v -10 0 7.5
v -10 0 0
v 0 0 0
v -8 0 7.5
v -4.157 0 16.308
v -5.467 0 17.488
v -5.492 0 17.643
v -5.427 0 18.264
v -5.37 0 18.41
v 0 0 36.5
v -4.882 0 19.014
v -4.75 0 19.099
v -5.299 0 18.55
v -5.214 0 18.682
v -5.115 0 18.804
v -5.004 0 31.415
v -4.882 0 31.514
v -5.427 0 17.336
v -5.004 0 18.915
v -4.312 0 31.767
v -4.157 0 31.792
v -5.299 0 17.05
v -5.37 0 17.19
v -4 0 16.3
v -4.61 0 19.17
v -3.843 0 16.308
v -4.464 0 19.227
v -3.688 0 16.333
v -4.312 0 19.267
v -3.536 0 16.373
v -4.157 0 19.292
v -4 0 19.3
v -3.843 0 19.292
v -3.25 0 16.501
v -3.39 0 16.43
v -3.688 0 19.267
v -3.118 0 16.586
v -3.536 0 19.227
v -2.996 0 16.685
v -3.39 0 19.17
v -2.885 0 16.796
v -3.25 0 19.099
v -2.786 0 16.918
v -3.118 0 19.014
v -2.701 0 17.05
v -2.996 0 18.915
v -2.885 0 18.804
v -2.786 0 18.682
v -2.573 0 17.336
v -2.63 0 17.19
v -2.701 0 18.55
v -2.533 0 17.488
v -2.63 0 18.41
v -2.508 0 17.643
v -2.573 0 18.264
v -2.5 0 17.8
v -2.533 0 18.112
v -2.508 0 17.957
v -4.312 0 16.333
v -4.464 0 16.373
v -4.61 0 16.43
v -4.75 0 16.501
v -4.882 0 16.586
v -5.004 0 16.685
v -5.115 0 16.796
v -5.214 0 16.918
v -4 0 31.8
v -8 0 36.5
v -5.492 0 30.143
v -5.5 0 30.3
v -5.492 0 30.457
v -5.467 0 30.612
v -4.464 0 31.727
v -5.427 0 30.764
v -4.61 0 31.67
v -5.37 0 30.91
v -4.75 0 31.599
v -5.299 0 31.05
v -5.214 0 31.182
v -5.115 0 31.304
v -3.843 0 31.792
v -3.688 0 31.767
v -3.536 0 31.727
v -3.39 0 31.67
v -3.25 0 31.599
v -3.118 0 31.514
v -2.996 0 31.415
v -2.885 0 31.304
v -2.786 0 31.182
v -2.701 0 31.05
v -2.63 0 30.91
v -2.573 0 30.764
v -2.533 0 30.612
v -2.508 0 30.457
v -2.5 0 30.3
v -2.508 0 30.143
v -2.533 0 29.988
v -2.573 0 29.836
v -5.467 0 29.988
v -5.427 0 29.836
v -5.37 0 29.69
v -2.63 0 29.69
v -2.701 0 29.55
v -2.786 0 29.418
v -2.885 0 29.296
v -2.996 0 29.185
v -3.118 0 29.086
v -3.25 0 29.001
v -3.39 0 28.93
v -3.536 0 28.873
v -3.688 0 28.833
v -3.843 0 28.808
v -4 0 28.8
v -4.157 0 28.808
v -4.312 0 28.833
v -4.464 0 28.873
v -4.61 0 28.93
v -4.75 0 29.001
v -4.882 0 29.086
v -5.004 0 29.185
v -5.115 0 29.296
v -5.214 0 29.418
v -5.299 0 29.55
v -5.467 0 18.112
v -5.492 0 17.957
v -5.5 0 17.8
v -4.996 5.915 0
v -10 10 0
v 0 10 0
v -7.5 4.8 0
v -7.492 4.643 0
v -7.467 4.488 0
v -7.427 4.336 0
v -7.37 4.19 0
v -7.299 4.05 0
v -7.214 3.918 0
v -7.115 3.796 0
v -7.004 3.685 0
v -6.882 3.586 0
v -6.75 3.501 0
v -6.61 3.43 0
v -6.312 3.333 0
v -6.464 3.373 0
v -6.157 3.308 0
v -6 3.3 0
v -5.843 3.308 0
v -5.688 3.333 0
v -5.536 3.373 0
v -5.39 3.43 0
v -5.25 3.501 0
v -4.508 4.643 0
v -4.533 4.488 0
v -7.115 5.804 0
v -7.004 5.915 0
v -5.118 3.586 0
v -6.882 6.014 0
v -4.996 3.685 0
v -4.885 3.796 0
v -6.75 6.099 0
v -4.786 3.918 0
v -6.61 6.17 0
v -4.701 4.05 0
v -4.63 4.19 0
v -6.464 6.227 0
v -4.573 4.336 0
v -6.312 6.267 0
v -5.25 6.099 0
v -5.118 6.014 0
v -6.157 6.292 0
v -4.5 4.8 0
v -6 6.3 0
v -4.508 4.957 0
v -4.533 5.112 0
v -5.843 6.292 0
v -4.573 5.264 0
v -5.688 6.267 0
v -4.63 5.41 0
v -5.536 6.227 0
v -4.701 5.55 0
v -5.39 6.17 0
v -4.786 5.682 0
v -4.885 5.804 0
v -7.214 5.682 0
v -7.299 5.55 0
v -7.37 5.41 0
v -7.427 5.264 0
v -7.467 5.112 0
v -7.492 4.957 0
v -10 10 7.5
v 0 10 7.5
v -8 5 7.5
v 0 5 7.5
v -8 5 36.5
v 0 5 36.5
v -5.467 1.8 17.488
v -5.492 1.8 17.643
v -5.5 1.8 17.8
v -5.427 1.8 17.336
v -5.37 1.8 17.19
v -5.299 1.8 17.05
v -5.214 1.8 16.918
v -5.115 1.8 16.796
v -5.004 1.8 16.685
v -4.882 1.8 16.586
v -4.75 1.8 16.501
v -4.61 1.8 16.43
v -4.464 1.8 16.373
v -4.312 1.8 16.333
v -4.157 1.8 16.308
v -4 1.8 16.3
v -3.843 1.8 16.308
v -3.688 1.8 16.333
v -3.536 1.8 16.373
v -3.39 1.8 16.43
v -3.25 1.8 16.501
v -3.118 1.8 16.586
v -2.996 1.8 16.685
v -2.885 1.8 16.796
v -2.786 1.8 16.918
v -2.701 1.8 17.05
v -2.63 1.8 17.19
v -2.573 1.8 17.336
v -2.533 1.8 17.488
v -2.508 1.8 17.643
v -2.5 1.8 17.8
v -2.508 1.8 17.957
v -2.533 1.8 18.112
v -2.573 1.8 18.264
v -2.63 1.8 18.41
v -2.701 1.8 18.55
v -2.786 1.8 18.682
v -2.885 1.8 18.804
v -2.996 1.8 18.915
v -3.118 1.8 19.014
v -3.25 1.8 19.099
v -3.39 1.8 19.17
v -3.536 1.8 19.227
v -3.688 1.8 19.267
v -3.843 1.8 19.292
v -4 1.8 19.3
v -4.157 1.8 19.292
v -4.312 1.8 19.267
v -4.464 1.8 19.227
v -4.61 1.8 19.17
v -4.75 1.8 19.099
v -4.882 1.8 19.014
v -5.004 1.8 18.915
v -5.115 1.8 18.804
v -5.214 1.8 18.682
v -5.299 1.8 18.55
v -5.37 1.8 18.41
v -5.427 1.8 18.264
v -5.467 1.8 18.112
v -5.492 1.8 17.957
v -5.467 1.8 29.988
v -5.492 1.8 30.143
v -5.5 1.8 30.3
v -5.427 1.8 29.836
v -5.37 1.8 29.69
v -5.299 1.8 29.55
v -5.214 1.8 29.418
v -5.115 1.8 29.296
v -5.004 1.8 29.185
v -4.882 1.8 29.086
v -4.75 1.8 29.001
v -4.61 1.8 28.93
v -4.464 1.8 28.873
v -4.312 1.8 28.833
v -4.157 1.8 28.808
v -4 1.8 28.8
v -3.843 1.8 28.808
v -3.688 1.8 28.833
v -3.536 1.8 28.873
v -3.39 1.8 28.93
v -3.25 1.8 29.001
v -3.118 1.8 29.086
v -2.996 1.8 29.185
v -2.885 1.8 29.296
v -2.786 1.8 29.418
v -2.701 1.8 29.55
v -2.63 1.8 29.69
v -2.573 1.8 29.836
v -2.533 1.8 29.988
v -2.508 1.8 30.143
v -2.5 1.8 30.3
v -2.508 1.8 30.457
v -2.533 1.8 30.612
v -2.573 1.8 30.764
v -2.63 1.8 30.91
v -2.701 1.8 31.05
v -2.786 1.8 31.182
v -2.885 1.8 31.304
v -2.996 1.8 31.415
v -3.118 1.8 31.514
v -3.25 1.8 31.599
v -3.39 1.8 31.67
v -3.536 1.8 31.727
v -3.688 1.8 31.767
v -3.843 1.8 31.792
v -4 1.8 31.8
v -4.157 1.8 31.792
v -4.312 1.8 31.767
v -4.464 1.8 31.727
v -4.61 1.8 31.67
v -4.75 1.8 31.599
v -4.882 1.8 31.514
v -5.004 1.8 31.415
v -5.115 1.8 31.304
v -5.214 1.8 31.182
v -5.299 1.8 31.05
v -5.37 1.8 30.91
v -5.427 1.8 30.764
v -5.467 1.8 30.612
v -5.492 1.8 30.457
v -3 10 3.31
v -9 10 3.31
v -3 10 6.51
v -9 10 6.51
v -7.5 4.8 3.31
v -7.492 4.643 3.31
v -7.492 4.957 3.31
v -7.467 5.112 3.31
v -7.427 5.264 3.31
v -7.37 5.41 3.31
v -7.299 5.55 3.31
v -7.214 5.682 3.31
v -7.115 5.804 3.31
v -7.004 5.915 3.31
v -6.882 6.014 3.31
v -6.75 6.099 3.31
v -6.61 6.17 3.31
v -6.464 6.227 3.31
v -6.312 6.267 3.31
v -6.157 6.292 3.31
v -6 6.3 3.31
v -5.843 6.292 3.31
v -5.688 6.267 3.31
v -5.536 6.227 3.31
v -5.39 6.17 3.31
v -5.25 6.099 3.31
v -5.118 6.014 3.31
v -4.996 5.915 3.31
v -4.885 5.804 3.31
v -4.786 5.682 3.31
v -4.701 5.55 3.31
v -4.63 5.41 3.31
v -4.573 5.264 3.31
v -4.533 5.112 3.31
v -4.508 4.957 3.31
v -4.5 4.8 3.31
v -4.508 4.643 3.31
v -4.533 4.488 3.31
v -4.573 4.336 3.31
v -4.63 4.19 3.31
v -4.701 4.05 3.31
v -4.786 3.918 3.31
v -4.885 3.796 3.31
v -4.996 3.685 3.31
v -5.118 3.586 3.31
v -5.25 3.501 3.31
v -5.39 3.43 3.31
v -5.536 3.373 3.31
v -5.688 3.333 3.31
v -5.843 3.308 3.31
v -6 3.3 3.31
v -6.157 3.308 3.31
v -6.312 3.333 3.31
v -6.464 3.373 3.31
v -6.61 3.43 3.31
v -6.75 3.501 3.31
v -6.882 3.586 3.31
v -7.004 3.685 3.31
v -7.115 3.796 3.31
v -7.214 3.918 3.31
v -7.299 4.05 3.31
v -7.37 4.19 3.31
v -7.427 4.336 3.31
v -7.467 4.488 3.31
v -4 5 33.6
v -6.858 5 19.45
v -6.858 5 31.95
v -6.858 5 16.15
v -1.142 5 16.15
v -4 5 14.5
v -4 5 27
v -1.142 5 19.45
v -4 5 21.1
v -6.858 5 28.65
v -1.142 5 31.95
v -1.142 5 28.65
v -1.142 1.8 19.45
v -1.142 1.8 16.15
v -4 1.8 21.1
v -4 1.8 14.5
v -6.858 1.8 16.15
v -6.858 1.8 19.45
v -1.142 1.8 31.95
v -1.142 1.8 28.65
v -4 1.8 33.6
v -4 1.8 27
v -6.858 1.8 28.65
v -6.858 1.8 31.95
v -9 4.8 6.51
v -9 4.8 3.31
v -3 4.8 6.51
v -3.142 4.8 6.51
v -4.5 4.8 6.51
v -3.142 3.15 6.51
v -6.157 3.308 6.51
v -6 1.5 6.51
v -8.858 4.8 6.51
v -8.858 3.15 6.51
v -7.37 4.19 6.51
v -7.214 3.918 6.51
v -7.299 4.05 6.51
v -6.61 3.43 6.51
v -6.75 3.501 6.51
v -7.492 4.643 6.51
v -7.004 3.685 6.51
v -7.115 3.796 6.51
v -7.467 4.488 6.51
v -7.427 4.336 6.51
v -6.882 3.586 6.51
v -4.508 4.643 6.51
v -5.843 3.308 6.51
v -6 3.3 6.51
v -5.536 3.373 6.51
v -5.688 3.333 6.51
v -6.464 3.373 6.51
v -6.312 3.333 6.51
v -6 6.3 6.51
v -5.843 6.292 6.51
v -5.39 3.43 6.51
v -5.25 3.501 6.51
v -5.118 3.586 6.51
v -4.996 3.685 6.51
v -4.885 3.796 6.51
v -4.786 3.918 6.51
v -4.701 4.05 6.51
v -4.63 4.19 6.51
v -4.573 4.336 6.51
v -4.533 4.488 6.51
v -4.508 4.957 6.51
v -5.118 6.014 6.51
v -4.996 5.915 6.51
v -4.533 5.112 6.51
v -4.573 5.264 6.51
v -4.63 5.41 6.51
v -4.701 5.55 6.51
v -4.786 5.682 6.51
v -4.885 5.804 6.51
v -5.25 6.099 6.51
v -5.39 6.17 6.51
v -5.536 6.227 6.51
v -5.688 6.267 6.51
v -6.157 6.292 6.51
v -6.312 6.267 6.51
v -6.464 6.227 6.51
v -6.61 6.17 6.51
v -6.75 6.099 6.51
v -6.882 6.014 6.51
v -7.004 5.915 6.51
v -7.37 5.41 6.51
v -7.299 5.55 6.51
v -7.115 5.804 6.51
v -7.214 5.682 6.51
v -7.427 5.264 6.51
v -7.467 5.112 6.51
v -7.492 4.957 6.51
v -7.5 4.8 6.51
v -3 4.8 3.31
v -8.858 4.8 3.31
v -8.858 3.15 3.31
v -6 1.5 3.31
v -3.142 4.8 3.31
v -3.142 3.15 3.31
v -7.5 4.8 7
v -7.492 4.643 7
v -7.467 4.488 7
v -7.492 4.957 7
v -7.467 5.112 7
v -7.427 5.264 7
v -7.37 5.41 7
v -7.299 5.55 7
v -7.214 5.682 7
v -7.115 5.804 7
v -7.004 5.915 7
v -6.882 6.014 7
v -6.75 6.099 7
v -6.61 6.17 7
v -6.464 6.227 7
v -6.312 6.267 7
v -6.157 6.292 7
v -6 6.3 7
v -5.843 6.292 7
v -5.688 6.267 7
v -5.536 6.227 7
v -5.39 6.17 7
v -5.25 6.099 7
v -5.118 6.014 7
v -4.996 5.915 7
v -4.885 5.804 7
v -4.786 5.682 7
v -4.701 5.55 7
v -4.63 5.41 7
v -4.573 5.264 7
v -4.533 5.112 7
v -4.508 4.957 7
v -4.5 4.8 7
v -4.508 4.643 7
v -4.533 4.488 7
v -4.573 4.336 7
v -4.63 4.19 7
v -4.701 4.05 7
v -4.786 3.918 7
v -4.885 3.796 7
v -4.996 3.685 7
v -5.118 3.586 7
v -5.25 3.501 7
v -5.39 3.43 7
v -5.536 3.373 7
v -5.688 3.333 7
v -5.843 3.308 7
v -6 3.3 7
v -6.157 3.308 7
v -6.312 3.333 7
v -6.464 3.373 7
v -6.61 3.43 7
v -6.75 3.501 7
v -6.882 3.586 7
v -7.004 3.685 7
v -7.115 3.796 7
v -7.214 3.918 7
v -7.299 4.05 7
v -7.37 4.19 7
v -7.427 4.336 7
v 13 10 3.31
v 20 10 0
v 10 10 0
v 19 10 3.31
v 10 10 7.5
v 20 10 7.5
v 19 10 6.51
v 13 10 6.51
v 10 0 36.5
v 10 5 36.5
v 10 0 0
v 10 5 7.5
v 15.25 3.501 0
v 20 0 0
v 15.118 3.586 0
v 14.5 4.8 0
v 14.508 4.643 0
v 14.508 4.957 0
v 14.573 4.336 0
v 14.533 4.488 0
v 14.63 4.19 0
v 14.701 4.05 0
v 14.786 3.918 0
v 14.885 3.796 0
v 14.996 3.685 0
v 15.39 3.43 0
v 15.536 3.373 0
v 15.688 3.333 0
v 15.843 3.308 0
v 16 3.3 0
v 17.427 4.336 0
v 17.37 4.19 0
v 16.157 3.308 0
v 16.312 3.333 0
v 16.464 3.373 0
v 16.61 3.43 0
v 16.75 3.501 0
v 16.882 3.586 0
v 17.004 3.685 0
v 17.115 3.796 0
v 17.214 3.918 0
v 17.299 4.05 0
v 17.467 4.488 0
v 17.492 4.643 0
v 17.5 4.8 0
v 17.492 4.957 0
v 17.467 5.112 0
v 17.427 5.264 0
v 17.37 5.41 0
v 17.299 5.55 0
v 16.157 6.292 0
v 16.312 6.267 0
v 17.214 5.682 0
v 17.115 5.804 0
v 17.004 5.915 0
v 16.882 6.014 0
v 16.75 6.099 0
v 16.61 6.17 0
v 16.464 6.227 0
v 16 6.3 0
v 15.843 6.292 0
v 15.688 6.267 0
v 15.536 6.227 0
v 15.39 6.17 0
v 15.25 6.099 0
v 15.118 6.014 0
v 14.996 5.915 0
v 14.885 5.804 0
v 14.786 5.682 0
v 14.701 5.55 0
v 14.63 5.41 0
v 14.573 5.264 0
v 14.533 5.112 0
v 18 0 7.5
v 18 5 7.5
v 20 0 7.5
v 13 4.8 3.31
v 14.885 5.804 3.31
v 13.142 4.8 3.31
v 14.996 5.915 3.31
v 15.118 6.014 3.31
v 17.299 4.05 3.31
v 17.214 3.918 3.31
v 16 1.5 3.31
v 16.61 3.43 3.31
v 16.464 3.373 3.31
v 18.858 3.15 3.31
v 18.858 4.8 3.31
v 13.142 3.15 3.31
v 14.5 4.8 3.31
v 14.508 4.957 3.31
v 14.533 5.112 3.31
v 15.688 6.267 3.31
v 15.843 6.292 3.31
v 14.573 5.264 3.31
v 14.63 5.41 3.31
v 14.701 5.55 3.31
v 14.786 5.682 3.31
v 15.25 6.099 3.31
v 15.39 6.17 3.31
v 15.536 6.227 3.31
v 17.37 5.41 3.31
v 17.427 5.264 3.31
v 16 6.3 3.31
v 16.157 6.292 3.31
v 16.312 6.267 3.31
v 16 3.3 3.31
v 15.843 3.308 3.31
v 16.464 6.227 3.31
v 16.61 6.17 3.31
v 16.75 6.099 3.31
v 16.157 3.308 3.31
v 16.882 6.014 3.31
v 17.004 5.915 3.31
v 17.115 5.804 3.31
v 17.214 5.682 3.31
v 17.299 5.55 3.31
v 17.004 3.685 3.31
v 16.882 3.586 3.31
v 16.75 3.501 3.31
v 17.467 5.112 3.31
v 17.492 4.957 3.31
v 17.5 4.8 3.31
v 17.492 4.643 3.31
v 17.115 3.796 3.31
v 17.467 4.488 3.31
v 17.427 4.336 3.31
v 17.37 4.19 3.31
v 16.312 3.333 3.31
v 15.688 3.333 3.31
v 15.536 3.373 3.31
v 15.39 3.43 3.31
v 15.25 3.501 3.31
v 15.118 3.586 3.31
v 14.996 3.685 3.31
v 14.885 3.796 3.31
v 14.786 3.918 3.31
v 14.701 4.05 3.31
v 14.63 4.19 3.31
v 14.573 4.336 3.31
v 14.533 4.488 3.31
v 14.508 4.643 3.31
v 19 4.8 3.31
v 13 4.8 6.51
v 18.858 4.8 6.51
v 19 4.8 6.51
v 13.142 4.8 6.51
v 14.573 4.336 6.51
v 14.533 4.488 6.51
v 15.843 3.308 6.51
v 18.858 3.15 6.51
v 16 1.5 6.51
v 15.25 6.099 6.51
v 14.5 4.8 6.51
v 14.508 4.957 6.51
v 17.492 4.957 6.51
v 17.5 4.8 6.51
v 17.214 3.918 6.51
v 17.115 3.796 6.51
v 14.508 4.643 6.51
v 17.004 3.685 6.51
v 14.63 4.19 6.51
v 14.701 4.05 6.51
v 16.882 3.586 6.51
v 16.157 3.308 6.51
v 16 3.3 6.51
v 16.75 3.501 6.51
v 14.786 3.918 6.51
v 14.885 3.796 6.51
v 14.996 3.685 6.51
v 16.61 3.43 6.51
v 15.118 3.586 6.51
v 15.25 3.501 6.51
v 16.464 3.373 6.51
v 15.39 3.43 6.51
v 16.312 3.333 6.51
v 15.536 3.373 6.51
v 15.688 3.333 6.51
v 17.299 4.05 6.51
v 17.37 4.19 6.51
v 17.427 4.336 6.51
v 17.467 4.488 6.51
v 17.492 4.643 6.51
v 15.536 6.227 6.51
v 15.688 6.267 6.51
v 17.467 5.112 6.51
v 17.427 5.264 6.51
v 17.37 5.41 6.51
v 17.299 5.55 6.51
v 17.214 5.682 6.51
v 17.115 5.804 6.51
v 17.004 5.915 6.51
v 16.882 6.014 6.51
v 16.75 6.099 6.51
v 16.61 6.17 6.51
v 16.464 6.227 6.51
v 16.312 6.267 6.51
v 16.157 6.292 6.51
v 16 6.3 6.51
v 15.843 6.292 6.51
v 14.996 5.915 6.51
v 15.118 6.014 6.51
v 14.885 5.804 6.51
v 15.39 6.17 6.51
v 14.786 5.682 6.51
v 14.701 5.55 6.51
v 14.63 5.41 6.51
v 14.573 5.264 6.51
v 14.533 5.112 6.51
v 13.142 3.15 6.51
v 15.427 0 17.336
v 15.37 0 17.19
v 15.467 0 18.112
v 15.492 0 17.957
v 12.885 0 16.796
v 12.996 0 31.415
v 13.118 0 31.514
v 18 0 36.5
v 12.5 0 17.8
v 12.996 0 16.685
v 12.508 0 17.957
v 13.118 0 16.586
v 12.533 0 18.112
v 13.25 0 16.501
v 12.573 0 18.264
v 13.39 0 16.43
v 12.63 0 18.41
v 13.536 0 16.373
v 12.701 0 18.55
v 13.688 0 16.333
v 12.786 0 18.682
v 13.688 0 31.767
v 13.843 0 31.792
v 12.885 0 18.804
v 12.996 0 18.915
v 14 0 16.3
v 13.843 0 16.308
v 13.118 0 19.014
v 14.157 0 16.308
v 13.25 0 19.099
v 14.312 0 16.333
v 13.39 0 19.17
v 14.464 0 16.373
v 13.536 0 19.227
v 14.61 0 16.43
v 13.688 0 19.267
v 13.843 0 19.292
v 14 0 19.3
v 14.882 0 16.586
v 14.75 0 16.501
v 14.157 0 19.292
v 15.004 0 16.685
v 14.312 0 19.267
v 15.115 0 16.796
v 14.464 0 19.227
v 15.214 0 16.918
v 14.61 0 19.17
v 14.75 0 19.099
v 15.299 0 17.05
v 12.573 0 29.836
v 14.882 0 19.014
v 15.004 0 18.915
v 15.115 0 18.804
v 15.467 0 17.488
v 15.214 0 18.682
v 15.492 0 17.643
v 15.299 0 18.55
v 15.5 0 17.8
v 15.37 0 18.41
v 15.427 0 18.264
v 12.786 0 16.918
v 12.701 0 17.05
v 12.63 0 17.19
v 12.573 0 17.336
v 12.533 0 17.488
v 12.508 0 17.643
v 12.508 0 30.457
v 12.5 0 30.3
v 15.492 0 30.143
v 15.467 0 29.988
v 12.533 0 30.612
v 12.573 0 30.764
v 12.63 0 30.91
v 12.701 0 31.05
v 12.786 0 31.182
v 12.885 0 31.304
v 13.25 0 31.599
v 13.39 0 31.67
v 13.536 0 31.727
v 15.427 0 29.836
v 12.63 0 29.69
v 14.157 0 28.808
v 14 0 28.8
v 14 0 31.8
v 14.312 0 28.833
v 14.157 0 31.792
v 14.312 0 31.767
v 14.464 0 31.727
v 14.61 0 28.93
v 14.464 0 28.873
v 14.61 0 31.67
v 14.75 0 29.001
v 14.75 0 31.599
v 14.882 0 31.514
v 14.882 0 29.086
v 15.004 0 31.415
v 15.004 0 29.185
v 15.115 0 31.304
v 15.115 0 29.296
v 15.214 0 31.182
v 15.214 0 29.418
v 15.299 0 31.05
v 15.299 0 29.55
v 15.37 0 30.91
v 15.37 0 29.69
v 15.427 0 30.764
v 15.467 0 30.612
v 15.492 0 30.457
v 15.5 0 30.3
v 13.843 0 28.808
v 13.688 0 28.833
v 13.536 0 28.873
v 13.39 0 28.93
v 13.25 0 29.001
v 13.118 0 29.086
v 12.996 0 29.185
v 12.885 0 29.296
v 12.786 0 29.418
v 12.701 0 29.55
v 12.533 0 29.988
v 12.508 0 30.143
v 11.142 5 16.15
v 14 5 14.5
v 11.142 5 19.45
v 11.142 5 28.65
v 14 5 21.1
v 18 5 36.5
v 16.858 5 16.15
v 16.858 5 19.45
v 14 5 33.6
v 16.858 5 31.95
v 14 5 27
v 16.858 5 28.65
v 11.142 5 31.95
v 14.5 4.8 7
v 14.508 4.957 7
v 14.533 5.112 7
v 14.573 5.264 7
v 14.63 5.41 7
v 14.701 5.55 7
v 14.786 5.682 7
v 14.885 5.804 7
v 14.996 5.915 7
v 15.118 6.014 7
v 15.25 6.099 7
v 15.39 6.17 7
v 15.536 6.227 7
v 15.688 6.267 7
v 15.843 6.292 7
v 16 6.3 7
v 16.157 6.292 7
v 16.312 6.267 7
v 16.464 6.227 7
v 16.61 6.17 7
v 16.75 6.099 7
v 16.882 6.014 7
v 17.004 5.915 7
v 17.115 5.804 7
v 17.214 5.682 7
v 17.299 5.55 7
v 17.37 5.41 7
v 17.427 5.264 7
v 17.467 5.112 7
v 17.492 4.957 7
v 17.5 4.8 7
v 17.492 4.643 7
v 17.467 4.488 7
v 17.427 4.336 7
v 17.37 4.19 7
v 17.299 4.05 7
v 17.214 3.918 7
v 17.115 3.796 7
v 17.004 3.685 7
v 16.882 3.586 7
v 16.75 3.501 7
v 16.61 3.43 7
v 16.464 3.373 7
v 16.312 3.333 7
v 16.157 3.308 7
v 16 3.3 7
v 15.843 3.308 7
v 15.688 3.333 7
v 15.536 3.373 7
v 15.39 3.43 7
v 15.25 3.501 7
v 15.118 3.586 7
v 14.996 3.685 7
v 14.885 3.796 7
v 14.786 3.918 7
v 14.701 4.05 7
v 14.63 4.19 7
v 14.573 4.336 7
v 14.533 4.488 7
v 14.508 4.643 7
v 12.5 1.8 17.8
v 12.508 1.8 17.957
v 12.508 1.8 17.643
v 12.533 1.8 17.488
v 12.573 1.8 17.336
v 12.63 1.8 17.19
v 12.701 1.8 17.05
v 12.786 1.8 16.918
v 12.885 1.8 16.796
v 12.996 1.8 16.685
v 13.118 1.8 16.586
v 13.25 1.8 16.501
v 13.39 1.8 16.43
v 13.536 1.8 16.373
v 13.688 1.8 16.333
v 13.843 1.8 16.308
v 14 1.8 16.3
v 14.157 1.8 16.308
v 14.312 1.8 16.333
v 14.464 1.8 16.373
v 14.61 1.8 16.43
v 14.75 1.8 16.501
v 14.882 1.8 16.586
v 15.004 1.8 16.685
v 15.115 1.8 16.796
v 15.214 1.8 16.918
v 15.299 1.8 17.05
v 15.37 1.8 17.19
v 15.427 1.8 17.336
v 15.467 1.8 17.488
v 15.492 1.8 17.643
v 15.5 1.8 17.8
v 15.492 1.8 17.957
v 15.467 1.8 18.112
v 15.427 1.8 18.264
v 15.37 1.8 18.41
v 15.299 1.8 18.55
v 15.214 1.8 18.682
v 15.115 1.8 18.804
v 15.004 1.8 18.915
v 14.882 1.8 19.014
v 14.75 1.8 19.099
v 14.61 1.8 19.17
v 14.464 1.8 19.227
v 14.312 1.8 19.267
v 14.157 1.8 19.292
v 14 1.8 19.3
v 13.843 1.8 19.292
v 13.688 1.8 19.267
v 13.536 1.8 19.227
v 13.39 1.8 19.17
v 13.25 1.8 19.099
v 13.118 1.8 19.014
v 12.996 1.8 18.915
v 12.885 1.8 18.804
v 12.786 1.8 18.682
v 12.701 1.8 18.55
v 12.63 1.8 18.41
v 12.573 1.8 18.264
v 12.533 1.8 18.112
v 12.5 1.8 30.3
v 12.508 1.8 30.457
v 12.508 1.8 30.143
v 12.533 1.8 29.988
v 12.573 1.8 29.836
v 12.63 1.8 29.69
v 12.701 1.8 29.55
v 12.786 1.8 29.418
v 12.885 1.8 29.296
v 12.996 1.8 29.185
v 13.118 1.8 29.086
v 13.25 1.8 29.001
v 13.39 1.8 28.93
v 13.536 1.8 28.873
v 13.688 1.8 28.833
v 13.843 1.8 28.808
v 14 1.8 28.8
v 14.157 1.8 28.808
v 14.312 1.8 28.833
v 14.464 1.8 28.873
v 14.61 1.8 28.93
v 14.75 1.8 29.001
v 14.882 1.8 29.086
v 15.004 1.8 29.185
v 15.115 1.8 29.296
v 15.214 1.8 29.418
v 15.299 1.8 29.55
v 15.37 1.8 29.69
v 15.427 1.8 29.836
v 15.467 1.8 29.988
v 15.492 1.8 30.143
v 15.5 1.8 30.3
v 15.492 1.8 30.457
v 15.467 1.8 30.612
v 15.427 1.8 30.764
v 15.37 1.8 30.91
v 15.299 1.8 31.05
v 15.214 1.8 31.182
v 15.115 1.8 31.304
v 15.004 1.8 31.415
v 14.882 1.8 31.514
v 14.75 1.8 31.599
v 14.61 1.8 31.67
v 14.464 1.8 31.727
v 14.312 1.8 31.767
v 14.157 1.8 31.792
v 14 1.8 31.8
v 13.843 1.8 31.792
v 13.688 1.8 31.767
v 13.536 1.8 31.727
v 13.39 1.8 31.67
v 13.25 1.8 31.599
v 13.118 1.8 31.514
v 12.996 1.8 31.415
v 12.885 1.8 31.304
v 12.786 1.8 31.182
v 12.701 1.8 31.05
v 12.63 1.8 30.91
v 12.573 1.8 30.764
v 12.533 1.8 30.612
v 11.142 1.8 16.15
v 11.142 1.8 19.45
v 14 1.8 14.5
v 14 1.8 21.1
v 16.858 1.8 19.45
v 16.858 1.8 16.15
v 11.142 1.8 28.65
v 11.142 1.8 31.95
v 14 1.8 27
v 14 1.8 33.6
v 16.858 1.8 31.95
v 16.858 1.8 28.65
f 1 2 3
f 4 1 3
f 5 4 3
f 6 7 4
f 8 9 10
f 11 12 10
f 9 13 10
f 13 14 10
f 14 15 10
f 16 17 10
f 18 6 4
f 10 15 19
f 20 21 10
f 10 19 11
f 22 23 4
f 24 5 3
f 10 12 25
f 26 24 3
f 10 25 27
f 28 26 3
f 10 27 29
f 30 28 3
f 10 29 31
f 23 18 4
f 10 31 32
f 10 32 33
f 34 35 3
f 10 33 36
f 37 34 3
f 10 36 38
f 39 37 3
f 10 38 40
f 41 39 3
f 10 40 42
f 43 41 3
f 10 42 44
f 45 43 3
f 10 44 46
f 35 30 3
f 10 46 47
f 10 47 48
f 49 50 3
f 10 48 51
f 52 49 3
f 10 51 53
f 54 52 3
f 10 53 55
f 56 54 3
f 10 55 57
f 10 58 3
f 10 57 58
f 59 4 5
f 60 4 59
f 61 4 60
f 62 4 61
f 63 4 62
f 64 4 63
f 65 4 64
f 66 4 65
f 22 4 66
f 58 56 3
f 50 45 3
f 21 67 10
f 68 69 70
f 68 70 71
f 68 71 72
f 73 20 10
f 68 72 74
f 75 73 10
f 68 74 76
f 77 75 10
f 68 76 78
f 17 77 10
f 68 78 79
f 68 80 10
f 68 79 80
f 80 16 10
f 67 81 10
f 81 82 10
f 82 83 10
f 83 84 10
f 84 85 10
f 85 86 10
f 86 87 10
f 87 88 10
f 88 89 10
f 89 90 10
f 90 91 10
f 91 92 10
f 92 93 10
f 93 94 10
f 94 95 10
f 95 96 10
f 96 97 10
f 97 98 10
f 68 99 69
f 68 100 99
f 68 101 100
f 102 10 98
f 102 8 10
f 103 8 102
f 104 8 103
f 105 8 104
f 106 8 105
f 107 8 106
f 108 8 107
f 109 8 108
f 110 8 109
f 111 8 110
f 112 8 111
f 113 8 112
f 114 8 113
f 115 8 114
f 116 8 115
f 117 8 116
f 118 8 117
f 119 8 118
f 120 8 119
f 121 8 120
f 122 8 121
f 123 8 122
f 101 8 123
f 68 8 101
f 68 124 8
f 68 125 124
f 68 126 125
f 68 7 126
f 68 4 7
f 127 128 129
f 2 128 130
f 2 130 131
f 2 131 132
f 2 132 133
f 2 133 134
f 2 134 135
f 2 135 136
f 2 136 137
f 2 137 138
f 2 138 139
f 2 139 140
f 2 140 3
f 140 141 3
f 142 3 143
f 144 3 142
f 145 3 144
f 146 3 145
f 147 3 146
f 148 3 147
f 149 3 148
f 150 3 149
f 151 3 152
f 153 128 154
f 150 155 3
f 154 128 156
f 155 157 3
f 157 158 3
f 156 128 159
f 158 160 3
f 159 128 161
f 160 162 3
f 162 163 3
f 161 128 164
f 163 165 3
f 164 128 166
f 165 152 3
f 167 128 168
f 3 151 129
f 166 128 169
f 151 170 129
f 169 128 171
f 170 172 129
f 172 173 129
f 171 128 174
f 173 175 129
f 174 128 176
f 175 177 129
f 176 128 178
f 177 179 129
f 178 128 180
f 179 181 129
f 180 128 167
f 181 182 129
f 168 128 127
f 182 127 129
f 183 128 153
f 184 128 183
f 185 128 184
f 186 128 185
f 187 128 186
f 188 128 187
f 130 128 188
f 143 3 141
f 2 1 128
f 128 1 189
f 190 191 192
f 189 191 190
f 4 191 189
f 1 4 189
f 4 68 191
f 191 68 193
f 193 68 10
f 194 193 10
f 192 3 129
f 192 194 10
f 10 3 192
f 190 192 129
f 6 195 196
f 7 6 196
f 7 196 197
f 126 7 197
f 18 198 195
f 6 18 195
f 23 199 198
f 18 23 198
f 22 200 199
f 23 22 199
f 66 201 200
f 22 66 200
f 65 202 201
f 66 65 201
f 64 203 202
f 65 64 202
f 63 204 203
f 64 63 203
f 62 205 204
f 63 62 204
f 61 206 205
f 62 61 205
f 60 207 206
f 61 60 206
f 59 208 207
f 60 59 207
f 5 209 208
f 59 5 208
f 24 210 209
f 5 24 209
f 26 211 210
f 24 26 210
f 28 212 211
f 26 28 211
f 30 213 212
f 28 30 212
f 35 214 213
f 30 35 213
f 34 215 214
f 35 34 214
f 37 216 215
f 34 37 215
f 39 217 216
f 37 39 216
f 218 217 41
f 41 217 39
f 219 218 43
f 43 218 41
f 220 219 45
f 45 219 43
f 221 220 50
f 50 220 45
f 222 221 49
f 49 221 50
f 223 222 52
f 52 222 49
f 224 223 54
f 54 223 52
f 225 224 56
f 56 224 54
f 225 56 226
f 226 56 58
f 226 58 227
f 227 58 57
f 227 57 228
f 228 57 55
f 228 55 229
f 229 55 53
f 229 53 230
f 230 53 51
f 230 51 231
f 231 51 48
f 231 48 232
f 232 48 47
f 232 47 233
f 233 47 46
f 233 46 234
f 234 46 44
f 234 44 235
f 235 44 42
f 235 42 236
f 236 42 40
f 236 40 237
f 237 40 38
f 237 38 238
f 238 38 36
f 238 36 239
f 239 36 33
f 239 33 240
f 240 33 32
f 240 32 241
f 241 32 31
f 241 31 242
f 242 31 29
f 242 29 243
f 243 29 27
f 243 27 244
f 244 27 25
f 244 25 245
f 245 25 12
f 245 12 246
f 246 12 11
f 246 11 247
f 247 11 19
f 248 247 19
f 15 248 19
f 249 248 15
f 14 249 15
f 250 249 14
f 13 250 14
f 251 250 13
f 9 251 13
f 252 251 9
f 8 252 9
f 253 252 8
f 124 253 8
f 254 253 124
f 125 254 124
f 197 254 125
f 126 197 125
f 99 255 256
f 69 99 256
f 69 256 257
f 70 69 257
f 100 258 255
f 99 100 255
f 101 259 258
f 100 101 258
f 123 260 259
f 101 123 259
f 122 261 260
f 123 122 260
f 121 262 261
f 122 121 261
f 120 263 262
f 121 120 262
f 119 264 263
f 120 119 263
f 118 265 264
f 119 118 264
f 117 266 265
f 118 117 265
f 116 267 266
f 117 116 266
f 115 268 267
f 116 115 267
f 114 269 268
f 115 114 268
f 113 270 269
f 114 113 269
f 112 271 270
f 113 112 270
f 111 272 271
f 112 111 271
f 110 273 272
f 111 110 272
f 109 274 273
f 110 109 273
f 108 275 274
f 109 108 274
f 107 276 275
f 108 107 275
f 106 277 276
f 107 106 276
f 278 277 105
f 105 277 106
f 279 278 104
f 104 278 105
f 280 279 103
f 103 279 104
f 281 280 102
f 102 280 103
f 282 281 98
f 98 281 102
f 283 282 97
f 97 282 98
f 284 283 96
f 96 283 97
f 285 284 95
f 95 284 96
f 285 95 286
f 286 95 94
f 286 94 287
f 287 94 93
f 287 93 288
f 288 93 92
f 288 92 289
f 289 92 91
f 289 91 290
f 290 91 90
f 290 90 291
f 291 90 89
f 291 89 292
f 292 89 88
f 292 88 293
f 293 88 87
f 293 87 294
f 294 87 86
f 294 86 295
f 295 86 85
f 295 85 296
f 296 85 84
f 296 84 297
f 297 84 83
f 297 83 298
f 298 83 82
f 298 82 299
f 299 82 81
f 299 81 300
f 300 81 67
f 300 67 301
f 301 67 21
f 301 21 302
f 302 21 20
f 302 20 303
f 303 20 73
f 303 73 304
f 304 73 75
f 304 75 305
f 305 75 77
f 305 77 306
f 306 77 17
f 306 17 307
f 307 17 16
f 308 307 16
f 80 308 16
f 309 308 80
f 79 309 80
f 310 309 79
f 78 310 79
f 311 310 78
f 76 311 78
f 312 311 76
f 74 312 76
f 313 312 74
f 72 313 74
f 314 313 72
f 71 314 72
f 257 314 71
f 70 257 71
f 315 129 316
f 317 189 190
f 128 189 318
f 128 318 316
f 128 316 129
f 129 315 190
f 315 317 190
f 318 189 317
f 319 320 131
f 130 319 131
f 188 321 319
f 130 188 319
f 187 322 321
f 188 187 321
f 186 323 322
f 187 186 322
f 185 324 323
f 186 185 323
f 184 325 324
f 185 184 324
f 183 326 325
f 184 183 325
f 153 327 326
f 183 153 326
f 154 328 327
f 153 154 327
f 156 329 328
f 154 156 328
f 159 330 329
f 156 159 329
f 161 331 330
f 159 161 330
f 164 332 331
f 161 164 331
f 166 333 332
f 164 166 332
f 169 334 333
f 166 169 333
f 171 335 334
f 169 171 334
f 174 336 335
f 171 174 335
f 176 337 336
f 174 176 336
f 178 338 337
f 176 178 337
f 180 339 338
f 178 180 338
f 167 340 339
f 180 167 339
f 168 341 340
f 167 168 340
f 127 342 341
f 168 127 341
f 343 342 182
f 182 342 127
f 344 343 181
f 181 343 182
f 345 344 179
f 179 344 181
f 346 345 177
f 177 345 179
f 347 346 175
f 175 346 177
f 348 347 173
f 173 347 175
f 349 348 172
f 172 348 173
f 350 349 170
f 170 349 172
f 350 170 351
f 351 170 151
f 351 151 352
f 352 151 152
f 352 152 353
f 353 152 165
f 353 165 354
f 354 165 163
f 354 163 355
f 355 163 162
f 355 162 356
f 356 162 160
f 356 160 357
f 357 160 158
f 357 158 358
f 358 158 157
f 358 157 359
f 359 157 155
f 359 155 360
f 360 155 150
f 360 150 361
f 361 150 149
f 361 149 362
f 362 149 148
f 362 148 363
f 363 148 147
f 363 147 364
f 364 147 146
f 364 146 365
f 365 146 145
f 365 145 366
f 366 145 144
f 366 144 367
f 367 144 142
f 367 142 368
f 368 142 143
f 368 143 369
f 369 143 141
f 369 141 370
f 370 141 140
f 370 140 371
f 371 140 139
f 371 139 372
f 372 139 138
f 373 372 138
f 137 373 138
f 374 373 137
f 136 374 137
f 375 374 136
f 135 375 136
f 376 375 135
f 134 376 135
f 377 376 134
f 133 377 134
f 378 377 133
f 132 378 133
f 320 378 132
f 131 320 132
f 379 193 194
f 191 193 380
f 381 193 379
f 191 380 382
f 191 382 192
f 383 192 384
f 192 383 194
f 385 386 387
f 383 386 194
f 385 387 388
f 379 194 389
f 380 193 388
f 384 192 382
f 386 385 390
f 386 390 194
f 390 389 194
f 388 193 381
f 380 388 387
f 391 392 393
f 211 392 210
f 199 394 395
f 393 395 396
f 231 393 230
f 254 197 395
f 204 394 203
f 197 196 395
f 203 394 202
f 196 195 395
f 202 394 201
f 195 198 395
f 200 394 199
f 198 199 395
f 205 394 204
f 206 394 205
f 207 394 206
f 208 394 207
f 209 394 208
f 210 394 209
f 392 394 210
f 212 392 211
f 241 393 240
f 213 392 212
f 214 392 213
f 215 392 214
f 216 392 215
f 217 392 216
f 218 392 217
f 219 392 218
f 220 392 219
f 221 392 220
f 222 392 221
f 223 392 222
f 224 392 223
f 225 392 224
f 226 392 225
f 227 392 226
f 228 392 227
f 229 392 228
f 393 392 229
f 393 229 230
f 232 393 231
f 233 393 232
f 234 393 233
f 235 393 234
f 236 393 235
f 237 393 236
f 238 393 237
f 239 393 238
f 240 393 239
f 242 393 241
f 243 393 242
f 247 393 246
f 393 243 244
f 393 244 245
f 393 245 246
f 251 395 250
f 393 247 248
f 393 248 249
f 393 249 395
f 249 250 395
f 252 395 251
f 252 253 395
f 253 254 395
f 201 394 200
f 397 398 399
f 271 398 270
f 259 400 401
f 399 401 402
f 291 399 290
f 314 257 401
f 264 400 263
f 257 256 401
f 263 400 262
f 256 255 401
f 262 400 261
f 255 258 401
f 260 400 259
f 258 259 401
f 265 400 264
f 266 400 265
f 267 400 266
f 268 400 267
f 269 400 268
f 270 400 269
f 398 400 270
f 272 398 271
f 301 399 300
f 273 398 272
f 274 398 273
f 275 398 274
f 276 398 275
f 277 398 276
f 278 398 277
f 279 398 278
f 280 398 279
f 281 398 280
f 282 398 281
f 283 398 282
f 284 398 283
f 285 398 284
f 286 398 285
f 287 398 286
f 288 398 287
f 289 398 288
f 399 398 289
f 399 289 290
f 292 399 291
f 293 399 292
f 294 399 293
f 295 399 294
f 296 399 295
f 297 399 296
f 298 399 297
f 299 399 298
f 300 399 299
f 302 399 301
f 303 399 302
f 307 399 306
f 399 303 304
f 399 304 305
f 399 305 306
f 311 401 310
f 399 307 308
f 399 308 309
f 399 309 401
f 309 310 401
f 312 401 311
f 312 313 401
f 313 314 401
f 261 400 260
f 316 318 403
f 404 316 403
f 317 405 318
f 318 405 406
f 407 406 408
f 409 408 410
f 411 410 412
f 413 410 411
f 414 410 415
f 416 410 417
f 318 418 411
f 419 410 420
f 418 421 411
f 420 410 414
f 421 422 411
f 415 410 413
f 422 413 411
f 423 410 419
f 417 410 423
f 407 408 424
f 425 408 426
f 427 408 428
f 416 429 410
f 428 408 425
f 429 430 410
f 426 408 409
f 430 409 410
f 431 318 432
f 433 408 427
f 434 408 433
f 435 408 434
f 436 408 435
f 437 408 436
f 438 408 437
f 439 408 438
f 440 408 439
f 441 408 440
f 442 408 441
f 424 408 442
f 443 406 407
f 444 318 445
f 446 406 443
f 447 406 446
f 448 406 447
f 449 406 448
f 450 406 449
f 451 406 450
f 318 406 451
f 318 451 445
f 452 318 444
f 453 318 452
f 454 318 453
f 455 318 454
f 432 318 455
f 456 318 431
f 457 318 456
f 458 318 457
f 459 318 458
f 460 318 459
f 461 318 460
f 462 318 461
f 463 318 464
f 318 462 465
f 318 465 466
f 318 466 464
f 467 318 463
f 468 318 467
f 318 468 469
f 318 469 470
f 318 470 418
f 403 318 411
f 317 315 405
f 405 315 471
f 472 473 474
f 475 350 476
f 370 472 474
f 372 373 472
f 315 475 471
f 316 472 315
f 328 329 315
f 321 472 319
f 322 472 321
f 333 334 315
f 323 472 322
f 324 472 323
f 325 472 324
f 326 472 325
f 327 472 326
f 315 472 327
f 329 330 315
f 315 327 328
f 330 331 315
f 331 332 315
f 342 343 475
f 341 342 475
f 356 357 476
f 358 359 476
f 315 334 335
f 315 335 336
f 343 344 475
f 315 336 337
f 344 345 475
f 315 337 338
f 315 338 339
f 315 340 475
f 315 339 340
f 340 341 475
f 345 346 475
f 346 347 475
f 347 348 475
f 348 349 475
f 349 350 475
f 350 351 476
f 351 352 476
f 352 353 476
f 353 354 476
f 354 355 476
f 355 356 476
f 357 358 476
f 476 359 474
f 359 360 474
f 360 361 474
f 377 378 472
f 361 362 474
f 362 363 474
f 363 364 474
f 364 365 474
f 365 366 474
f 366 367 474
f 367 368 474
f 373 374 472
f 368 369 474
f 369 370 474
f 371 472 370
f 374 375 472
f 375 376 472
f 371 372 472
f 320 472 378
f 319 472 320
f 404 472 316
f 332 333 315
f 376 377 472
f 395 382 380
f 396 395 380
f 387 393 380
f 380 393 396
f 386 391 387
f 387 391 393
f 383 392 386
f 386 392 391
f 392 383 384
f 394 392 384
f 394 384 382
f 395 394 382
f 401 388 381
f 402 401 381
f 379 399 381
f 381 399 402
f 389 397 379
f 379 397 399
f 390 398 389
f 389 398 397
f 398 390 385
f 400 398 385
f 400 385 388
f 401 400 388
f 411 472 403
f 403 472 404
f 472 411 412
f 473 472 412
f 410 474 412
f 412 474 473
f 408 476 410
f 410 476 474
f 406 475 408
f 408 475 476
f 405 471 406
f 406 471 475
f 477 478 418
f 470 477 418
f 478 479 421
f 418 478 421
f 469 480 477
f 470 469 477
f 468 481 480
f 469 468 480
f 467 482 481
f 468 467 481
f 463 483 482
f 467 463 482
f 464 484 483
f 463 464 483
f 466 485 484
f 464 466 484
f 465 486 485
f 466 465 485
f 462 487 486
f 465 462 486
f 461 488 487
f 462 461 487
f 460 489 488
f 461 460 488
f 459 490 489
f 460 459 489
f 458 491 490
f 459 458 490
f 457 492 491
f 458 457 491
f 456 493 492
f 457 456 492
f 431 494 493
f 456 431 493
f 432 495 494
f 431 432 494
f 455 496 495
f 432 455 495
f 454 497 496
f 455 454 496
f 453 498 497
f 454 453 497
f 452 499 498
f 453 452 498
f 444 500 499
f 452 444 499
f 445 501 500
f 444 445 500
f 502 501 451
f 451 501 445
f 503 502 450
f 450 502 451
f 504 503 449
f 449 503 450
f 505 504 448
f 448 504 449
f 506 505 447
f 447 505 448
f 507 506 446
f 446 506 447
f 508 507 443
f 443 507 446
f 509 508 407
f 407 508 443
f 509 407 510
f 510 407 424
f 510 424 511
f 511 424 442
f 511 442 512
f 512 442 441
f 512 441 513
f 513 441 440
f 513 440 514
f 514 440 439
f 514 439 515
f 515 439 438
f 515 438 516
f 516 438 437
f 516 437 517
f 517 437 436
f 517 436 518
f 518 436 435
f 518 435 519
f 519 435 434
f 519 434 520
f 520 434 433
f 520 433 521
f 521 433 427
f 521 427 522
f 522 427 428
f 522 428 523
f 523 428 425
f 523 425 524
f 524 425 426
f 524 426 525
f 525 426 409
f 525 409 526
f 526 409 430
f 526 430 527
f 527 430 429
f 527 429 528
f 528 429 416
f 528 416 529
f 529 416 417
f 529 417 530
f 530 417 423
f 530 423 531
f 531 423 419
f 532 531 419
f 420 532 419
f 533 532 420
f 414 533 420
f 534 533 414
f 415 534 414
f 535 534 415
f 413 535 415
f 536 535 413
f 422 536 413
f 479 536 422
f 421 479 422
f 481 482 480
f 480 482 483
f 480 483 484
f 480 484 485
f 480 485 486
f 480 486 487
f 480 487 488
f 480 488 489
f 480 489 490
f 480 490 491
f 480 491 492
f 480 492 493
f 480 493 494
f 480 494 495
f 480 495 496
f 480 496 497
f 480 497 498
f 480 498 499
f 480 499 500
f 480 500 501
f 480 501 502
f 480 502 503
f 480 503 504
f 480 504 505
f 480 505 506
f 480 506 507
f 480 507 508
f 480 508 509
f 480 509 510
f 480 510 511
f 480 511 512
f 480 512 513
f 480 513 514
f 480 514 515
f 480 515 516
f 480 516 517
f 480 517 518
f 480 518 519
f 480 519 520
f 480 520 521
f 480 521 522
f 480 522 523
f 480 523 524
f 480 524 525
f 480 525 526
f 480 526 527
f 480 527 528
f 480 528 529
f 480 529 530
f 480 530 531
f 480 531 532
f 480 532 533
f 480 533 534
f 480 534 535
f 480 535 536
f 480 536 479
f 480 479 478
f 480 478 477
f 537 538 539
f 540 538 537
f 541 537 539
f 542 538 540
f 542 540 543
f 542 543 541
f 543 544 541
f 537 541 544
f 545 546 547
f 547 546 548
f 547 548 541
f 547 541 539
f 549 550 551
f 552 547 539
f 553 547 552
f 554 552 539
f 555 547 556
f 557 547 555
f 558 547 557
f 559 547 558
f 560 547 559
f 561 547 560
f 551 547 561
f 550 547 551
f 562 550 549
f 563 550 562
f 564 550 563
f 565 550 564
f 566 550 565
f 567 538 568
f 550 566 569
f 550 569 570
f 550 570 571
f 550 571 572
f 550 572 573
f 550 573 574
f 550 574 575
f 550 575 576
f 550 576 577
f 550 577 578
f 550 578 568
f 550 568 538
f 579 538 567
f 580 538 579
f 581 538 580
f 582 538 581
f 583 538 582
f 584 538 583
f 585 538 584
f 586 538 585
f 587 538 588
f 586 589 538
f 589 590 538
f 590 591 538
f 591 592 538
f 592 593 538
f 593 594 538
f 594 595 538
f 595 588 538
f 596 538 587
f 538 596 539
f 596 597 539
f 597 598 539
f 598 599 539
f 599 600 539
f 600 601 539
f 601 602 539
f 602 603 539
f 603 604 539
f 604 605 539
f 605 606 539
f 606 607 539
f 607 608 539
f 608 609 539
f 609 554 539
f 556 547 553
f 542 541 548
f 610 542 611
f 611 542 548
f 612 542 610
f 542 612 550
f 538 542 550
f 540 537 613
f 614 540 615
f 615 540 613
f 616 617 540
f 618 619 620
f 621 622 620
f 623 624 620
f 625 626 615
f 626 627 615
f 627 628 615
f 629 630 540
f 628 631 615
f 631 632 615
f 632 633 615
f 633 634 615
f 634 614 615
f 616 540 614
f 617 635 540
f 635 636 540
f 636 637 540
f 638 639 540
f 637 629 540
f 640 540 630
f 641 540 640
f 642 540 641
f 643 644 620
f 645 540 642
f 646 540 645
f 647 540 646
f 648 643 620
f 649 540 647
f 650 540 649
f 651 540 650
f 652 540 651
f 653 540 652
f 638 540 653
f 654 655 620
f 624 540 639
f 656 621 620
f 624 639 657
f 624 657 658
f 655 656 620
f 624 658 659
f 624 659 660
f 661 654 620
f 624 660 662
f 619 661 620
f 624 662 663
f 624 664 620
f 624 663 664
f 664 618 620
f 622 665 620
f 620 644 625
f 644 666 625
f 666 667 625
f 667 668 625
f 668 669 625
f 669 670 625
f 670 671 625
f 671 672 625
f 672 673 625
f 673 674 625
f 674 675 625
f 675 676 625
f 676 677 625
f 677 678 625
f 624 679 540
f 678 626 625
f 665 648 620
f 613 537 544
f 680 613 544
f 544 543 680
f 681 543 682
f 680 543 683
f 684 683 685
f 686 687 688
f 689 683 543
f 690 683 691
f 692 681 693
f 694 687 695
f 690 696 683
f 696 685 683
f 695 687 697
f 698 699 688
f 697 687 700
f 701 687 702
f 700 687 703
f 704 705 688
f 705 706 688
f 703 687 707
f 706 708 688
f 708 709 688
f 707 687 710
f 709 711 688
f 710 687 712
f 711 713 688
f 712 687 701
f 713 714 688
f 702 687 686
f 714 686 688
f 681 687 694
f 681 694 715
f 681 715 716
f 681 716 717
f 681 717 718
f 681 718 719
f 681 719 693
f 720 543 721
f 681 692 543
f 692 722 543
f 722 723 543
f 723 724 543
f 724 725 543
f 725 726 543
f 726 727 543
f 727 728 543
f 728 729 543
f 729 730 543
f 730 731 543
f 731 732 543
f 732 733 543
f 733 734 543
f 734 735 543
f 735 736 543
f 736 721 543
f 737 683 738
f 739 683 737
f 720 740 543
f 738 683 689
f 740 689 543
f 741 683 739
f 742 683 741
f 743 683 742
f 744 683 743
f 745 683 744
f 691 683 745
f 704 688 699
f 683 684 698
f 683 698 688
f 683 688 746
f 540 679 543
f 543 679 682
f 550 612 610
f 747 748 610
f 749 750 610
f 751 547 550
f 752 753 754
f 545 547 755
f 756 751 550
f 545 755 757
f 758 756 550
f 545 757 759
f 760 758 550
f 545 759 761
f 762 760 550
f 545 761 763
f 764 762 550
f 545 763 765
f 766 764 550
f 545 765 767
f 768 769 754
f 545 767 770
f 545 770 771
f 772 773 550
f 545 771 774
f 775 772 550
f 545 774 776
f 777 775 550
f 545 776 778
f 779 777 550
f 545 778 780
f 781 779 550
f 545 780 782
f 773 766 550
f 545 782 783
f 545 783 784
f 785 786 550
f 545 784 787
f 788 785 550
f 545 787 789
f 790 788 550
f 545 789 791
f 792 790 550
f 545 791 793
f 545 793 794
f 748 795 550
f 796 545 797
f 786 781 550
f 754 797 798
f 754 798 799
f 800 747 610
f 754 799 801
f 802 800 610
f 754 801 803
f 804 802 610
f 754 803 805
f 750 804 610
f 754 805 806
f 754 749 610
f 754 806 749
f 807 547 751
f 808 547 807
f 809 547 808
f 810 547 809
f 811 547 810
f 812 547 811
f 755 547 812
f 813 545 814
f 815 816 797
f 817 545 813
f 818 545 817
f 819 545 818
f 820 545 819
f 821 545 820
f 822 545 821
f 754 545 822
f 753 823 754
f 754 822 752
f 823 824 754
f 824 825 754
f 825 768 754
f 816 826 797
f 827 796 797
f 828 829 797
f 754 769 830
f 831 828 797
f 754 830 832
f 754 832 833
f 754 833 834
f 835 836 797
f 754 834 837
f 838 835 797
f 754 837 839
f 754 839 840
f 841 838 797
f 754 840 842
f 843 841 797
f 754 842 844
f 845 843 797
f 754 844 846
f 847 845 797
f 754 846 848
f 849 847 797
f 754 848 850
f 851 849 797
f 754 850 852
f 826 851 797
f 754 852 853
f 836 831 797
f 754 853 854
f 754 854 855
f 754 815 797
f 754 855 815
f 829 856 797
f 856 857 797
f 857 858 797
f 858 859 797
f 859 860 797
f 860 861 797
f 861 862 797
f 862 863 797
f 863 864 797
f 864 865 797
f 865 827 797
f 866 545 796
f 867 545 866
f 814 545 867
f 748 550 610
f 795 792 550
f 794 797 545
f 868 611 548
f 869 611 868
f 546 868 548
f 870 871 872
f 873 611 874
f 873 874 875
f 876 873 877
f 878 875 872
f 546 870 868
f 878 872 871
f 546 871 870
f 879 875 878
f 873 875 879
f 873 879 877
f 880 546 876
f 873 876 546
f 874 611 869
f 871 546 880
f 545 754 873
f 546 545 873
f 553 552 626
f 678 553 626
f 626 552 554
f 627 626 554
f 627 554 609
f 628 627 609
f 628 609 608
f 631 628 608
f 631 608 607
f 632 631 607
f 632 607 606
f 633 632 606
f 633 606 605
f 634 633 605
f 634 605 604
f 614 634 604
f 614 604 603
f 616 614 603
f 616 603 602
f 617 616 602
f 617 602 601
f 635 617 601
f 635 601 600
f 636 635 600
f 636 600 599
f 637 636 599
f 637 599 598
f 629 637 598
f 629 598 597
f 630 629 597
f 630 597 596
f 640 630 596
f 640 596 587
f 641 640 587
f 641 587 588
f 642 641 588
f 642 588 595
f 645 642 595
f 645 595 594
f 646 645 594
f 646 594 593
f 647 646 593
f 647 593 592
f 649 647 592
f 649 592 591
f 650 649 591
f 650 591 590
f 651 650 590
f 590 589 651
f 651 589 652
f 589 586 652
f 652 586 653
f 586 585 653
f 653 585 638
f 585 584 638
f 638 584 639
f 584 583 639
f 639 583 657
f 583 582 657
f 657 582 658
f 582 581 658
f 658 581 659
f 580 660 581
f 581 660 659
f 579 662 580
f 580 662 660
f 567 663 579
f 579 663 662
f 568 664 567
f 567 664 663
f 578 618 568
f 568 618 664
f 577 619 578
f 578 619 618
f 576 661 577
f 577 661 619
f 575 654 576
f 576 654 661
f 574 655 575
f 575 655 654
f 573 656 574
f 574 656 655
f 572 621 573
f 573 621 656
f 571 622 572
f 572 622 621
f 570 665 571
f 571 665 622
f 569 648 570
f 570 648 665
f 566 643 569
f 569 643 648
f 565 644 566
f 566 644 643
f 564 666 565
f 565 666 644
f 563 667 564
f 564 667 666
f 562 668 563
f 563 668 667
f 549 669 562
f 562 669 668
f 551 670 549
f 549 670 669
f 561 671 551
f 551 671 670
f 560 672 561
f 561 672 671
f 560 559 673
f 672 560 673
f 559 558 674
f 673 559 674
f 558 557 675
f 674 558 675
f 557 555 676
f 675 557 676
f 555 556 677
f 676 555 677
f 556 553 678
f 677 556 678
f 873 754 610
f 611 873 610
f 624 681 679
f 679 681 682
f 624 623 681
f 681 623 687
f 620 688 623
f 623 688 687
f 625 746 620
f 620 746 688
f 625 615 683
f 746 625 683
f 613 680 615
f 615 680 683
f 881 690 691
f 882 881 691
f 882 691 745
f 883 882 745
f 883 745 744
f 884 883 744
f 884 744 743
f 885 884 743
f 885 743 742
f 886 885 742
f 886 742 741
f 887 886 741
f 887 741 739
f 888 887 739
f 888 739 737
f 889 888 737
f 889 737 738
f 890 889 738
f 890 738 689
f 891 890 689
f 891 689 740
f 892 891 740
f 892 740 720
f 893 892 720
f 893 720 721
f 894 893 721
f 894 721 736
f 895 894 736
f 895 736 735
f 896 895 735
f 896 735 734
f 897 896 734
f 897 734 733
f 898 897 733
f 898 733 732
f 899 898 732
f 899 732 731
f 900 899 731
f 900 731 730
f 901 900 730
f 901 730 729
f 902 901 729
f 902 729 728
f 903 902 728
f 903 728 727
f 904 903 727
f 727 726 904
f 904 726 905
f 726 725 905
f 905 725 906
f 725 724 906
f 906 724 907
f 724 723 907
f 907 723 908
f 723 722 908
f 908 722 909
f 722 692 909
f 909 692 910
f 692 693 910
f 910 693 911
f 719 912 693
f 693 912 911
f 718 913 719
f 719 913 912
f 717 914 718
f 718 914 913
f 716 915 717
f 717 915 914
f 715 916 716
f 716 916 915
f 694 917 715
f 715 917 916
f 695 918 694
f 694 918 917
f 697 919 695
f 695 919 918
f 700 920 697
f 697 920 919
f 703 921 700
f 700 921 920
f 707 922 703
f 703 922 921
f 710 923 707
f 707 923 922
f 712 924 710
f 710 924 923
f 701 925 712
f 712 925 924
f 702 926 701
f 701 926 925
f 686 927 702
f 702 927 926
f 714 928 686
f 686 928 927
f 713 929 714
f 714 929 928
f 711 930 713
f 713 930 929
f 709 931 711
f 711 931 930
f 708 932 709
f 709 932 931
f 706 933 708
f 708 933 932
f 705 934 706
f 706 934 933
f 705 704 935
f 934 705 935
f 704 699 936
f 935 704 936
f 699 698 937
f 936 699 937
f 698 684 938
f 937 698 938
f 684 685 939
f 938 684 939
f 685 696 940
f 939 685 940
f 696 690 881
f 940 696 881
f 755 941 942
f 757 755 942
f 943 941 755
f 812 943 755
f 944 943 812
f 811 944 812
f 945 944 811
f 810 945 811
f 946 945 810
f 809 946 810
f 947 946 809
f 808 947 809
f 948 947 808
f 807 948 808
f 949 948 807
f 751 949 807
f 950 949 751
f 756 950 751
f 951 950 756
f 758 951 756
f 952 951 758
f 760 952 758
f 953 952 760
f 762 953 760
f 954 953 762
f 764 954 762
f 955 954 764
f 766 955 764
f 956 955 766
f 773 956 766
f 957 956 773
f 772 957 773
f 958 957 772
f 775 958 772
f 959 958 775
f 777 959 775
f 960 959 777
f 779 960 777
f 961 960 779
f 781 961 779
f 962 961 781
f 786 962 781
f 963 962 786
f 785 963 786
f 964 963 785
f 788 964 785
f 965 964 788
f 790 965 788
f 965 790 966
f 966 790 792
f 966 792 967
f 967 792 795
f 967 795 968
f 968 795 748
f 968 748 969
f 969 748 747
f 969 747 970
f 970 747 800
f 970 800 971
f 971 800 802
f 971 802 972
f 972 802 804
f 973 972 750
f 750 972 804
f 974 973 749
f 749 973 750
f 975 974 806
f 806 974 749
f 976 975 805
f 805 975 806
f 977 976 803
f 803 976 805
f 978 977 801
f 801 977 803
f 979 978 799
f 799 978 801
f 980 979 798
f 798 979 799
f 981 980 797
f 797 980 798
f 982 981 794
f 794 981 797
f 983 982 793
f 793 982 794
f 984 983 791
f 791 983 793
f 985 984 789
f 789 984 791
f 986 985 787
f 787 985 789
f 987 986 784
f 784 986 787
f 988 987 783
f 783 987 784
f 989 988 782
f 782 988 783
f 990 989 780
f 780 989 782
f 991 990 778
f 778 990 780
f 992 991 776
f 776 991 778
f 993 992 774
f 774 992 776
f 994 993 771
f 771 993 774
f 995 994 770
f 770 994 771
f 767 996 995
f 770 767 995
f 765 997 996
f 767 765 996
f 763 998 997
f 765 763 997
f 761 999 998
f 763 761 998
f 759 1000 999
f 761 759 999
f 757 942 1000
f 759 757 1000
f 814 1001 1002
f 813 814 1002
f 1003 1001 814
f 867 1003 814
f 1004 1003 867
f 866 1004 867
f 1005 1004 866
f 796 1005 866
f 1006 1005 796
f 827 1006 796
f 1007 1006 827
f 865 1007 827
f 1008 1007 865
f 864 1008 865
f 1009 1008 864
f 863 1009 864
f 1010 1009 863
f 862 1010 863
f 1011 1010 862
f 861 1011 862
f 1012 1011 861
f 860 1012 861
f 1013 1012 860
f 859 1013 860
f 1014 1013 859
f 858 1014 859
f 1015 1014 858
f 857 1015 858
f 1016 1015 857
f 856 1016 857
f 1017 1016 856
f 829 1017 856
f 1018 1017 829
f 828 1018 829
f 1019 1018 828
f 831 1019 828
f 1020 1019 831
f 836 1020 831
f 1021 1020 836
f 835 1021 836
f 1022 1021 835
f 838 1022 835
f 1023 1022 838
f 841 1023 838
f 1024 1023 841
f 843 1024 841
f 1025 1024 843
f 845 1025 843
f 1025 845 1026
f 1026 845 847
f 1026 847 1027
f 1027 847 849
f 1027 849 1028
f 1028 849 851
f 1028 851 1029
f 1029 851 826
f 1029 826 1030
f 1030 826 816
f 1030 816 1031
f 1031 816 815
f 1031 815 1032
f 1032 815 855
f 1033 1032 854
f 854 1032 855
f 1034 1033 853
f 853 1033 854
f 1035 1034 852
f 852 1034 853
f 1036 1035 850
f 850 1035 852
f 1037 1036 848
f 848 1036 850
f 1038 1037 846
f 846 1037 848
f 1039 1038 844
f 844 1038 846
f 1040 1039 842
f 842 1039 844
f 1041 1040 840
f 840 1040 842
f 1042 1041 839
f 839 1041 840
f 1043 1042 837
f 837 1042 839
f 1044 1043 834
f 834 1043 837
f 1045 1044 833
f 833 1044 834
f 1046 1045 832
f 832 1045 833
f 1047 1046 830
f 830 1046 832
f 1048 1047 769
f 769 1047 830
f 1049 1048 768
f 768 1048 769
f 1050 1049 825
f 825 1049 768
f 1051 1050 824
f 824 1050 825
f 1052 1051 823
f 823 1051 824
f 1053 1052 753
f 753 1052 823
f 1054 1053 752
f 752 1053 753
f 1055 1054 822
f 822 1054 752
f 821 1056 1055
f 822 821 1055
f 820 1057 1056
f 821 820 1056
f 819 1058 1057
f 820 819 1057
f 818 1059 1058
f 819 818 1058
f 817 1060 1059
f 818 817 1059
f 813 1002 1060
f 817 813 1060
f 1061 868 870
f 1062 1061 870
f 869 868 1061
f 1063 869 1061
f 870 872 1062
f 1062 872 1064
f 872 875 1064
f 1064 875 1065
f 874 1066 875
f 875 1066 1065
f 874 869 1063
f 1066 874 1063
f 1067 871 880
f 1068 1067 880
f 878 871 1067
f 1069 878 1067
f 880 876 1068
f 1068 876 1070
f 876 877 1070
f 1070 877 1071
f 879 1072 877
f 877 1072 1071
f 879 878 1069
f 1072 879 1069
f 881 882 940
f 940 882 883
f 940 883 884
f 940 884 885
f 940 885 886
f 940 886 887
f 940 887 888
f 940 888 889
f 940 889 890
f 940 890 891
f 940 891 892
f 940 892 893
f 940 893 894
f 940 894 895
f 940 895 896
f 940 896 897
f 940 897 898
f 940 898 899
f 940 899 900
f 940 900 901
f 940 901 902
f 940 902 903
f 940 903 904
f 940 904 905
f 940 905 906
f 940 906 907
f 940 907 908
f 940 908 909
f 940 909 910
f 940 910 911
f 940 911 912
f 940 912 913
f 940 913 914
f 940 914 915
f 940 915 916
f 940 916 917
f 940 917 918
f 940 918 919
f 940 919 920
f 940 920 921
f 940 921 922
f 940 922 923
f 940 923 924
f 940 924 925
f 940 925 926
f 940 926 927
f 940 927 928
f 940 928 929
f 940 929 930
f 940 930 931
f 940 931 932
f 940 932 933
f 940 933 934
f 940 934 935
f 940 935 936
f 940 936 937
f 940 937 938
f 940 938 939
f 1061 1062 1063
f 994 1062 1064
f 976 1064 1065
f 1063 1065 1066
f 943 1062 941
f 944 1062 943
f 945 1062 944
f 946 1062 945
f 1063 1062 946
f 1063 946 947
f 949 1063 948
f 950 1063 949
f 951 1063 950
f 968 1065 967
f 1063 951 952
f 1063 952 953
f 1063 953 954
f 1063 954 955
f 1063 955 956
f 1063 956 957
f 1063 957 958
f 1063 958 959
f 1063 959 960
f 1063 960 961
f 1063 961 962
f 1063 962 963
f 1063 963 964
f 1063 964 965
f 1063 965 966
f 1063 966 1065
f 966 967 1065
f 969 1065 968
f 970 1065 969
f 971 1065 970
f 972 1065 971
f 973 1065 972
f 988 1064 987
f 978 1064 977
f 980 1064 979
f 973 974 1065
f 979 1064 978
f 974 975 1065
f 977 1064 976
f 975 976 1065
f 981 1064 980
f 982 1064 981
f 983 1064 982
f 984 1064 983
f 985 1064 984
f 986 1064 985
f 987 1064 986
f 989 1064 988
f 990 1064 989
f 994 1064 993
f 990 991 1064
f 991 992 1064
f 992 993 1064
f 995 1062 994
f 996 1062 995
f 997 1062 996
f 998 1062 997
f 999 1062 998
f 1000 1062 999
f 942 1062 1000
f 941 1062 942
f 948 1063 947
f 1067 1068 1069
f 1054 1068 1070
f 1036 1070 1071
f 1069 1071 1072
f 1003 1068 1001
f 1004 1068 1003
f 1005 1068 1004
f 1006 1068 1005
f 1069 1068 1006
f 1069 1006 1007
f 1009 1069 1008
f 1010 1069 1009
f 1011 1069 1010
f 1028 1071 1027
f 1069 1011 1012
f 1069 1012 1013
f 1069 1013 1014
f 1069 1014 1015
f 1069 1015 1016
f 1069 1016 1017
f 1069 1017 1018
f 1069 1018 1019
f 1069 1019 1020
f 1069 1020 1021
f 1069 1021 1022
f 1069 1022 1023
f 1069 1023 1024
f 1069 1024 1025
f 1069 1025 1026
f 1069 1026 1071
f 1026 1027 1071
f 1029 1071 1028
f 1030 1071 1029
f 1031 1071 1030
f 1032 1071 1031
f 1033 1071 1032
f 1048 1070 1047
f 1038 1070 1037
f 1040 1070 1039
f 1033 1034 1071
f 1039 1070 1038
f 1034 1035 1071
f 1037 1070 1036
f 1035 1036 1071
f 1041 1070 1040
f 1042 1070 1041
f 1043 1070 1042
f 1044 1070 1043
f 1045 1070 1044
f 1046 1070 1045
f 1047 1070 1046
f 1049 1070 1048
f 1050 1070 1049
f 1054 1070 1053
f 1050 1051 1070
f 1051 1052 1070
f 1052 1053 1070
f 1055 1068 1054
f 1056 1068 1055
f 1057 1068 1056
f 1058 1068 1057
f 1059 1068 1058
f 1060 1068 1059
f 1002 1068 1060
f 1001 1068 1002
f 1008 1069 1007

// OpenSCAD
module cny70Holder(){

depth = 5;
depth_bottom = 10;
width = 8;
width_bottom = 10;
bottom = 7.5;
nut_size = 3.3;
nut_depth = 3.2;

difference(){

union(){
translate([0,0,bottom])
cube(size = [depth,width,29], center = false);
cube(size = [depth_bottom,width_bottom,bottom], center = false);
}

//holes
translate([-0.5,width/2,10.3+bottom]){
union(){
	rotate([0,90,0]){
		cylinder(h=depth+1, r=1.5, $fn=60);
		translate([0,0,depth-nut_depth+0.5])
		cylinder(h=nut_depth+0.5, r=nut_size, $fn=6);
	}
	
	translate([0,0,12.5]){
	rotate([0,90,0]){
		cylinder(h=depth+1, r=1.5, $fn=60);
		translate([0,0,depth-nut_depth+0.5])
		cylinder(h=nut_depth+0.5, r=nut_size, $fn=6);
	}
	}
}
}

translate([4.8,width/2+2,0]){
union(){
	translate([0,0,bottom-nut_depth-0.99])
	cylinder(h=nut_depth, r=nut_size, $fn=6);
	cylinder(h=bottom-0.5, r=1.5, $fn=60);
}
}

translate([4.8,(width-6)/2+2,bottom-nut_depth-0.99])
cube(size = [6,6,nut_depth],center=false);

}

}

rotate([0,0,90])
cny70Holder();

translate([10,0,0])
rotate([0,0,-90])
mirror([1,0,0])
cny70Holder();
